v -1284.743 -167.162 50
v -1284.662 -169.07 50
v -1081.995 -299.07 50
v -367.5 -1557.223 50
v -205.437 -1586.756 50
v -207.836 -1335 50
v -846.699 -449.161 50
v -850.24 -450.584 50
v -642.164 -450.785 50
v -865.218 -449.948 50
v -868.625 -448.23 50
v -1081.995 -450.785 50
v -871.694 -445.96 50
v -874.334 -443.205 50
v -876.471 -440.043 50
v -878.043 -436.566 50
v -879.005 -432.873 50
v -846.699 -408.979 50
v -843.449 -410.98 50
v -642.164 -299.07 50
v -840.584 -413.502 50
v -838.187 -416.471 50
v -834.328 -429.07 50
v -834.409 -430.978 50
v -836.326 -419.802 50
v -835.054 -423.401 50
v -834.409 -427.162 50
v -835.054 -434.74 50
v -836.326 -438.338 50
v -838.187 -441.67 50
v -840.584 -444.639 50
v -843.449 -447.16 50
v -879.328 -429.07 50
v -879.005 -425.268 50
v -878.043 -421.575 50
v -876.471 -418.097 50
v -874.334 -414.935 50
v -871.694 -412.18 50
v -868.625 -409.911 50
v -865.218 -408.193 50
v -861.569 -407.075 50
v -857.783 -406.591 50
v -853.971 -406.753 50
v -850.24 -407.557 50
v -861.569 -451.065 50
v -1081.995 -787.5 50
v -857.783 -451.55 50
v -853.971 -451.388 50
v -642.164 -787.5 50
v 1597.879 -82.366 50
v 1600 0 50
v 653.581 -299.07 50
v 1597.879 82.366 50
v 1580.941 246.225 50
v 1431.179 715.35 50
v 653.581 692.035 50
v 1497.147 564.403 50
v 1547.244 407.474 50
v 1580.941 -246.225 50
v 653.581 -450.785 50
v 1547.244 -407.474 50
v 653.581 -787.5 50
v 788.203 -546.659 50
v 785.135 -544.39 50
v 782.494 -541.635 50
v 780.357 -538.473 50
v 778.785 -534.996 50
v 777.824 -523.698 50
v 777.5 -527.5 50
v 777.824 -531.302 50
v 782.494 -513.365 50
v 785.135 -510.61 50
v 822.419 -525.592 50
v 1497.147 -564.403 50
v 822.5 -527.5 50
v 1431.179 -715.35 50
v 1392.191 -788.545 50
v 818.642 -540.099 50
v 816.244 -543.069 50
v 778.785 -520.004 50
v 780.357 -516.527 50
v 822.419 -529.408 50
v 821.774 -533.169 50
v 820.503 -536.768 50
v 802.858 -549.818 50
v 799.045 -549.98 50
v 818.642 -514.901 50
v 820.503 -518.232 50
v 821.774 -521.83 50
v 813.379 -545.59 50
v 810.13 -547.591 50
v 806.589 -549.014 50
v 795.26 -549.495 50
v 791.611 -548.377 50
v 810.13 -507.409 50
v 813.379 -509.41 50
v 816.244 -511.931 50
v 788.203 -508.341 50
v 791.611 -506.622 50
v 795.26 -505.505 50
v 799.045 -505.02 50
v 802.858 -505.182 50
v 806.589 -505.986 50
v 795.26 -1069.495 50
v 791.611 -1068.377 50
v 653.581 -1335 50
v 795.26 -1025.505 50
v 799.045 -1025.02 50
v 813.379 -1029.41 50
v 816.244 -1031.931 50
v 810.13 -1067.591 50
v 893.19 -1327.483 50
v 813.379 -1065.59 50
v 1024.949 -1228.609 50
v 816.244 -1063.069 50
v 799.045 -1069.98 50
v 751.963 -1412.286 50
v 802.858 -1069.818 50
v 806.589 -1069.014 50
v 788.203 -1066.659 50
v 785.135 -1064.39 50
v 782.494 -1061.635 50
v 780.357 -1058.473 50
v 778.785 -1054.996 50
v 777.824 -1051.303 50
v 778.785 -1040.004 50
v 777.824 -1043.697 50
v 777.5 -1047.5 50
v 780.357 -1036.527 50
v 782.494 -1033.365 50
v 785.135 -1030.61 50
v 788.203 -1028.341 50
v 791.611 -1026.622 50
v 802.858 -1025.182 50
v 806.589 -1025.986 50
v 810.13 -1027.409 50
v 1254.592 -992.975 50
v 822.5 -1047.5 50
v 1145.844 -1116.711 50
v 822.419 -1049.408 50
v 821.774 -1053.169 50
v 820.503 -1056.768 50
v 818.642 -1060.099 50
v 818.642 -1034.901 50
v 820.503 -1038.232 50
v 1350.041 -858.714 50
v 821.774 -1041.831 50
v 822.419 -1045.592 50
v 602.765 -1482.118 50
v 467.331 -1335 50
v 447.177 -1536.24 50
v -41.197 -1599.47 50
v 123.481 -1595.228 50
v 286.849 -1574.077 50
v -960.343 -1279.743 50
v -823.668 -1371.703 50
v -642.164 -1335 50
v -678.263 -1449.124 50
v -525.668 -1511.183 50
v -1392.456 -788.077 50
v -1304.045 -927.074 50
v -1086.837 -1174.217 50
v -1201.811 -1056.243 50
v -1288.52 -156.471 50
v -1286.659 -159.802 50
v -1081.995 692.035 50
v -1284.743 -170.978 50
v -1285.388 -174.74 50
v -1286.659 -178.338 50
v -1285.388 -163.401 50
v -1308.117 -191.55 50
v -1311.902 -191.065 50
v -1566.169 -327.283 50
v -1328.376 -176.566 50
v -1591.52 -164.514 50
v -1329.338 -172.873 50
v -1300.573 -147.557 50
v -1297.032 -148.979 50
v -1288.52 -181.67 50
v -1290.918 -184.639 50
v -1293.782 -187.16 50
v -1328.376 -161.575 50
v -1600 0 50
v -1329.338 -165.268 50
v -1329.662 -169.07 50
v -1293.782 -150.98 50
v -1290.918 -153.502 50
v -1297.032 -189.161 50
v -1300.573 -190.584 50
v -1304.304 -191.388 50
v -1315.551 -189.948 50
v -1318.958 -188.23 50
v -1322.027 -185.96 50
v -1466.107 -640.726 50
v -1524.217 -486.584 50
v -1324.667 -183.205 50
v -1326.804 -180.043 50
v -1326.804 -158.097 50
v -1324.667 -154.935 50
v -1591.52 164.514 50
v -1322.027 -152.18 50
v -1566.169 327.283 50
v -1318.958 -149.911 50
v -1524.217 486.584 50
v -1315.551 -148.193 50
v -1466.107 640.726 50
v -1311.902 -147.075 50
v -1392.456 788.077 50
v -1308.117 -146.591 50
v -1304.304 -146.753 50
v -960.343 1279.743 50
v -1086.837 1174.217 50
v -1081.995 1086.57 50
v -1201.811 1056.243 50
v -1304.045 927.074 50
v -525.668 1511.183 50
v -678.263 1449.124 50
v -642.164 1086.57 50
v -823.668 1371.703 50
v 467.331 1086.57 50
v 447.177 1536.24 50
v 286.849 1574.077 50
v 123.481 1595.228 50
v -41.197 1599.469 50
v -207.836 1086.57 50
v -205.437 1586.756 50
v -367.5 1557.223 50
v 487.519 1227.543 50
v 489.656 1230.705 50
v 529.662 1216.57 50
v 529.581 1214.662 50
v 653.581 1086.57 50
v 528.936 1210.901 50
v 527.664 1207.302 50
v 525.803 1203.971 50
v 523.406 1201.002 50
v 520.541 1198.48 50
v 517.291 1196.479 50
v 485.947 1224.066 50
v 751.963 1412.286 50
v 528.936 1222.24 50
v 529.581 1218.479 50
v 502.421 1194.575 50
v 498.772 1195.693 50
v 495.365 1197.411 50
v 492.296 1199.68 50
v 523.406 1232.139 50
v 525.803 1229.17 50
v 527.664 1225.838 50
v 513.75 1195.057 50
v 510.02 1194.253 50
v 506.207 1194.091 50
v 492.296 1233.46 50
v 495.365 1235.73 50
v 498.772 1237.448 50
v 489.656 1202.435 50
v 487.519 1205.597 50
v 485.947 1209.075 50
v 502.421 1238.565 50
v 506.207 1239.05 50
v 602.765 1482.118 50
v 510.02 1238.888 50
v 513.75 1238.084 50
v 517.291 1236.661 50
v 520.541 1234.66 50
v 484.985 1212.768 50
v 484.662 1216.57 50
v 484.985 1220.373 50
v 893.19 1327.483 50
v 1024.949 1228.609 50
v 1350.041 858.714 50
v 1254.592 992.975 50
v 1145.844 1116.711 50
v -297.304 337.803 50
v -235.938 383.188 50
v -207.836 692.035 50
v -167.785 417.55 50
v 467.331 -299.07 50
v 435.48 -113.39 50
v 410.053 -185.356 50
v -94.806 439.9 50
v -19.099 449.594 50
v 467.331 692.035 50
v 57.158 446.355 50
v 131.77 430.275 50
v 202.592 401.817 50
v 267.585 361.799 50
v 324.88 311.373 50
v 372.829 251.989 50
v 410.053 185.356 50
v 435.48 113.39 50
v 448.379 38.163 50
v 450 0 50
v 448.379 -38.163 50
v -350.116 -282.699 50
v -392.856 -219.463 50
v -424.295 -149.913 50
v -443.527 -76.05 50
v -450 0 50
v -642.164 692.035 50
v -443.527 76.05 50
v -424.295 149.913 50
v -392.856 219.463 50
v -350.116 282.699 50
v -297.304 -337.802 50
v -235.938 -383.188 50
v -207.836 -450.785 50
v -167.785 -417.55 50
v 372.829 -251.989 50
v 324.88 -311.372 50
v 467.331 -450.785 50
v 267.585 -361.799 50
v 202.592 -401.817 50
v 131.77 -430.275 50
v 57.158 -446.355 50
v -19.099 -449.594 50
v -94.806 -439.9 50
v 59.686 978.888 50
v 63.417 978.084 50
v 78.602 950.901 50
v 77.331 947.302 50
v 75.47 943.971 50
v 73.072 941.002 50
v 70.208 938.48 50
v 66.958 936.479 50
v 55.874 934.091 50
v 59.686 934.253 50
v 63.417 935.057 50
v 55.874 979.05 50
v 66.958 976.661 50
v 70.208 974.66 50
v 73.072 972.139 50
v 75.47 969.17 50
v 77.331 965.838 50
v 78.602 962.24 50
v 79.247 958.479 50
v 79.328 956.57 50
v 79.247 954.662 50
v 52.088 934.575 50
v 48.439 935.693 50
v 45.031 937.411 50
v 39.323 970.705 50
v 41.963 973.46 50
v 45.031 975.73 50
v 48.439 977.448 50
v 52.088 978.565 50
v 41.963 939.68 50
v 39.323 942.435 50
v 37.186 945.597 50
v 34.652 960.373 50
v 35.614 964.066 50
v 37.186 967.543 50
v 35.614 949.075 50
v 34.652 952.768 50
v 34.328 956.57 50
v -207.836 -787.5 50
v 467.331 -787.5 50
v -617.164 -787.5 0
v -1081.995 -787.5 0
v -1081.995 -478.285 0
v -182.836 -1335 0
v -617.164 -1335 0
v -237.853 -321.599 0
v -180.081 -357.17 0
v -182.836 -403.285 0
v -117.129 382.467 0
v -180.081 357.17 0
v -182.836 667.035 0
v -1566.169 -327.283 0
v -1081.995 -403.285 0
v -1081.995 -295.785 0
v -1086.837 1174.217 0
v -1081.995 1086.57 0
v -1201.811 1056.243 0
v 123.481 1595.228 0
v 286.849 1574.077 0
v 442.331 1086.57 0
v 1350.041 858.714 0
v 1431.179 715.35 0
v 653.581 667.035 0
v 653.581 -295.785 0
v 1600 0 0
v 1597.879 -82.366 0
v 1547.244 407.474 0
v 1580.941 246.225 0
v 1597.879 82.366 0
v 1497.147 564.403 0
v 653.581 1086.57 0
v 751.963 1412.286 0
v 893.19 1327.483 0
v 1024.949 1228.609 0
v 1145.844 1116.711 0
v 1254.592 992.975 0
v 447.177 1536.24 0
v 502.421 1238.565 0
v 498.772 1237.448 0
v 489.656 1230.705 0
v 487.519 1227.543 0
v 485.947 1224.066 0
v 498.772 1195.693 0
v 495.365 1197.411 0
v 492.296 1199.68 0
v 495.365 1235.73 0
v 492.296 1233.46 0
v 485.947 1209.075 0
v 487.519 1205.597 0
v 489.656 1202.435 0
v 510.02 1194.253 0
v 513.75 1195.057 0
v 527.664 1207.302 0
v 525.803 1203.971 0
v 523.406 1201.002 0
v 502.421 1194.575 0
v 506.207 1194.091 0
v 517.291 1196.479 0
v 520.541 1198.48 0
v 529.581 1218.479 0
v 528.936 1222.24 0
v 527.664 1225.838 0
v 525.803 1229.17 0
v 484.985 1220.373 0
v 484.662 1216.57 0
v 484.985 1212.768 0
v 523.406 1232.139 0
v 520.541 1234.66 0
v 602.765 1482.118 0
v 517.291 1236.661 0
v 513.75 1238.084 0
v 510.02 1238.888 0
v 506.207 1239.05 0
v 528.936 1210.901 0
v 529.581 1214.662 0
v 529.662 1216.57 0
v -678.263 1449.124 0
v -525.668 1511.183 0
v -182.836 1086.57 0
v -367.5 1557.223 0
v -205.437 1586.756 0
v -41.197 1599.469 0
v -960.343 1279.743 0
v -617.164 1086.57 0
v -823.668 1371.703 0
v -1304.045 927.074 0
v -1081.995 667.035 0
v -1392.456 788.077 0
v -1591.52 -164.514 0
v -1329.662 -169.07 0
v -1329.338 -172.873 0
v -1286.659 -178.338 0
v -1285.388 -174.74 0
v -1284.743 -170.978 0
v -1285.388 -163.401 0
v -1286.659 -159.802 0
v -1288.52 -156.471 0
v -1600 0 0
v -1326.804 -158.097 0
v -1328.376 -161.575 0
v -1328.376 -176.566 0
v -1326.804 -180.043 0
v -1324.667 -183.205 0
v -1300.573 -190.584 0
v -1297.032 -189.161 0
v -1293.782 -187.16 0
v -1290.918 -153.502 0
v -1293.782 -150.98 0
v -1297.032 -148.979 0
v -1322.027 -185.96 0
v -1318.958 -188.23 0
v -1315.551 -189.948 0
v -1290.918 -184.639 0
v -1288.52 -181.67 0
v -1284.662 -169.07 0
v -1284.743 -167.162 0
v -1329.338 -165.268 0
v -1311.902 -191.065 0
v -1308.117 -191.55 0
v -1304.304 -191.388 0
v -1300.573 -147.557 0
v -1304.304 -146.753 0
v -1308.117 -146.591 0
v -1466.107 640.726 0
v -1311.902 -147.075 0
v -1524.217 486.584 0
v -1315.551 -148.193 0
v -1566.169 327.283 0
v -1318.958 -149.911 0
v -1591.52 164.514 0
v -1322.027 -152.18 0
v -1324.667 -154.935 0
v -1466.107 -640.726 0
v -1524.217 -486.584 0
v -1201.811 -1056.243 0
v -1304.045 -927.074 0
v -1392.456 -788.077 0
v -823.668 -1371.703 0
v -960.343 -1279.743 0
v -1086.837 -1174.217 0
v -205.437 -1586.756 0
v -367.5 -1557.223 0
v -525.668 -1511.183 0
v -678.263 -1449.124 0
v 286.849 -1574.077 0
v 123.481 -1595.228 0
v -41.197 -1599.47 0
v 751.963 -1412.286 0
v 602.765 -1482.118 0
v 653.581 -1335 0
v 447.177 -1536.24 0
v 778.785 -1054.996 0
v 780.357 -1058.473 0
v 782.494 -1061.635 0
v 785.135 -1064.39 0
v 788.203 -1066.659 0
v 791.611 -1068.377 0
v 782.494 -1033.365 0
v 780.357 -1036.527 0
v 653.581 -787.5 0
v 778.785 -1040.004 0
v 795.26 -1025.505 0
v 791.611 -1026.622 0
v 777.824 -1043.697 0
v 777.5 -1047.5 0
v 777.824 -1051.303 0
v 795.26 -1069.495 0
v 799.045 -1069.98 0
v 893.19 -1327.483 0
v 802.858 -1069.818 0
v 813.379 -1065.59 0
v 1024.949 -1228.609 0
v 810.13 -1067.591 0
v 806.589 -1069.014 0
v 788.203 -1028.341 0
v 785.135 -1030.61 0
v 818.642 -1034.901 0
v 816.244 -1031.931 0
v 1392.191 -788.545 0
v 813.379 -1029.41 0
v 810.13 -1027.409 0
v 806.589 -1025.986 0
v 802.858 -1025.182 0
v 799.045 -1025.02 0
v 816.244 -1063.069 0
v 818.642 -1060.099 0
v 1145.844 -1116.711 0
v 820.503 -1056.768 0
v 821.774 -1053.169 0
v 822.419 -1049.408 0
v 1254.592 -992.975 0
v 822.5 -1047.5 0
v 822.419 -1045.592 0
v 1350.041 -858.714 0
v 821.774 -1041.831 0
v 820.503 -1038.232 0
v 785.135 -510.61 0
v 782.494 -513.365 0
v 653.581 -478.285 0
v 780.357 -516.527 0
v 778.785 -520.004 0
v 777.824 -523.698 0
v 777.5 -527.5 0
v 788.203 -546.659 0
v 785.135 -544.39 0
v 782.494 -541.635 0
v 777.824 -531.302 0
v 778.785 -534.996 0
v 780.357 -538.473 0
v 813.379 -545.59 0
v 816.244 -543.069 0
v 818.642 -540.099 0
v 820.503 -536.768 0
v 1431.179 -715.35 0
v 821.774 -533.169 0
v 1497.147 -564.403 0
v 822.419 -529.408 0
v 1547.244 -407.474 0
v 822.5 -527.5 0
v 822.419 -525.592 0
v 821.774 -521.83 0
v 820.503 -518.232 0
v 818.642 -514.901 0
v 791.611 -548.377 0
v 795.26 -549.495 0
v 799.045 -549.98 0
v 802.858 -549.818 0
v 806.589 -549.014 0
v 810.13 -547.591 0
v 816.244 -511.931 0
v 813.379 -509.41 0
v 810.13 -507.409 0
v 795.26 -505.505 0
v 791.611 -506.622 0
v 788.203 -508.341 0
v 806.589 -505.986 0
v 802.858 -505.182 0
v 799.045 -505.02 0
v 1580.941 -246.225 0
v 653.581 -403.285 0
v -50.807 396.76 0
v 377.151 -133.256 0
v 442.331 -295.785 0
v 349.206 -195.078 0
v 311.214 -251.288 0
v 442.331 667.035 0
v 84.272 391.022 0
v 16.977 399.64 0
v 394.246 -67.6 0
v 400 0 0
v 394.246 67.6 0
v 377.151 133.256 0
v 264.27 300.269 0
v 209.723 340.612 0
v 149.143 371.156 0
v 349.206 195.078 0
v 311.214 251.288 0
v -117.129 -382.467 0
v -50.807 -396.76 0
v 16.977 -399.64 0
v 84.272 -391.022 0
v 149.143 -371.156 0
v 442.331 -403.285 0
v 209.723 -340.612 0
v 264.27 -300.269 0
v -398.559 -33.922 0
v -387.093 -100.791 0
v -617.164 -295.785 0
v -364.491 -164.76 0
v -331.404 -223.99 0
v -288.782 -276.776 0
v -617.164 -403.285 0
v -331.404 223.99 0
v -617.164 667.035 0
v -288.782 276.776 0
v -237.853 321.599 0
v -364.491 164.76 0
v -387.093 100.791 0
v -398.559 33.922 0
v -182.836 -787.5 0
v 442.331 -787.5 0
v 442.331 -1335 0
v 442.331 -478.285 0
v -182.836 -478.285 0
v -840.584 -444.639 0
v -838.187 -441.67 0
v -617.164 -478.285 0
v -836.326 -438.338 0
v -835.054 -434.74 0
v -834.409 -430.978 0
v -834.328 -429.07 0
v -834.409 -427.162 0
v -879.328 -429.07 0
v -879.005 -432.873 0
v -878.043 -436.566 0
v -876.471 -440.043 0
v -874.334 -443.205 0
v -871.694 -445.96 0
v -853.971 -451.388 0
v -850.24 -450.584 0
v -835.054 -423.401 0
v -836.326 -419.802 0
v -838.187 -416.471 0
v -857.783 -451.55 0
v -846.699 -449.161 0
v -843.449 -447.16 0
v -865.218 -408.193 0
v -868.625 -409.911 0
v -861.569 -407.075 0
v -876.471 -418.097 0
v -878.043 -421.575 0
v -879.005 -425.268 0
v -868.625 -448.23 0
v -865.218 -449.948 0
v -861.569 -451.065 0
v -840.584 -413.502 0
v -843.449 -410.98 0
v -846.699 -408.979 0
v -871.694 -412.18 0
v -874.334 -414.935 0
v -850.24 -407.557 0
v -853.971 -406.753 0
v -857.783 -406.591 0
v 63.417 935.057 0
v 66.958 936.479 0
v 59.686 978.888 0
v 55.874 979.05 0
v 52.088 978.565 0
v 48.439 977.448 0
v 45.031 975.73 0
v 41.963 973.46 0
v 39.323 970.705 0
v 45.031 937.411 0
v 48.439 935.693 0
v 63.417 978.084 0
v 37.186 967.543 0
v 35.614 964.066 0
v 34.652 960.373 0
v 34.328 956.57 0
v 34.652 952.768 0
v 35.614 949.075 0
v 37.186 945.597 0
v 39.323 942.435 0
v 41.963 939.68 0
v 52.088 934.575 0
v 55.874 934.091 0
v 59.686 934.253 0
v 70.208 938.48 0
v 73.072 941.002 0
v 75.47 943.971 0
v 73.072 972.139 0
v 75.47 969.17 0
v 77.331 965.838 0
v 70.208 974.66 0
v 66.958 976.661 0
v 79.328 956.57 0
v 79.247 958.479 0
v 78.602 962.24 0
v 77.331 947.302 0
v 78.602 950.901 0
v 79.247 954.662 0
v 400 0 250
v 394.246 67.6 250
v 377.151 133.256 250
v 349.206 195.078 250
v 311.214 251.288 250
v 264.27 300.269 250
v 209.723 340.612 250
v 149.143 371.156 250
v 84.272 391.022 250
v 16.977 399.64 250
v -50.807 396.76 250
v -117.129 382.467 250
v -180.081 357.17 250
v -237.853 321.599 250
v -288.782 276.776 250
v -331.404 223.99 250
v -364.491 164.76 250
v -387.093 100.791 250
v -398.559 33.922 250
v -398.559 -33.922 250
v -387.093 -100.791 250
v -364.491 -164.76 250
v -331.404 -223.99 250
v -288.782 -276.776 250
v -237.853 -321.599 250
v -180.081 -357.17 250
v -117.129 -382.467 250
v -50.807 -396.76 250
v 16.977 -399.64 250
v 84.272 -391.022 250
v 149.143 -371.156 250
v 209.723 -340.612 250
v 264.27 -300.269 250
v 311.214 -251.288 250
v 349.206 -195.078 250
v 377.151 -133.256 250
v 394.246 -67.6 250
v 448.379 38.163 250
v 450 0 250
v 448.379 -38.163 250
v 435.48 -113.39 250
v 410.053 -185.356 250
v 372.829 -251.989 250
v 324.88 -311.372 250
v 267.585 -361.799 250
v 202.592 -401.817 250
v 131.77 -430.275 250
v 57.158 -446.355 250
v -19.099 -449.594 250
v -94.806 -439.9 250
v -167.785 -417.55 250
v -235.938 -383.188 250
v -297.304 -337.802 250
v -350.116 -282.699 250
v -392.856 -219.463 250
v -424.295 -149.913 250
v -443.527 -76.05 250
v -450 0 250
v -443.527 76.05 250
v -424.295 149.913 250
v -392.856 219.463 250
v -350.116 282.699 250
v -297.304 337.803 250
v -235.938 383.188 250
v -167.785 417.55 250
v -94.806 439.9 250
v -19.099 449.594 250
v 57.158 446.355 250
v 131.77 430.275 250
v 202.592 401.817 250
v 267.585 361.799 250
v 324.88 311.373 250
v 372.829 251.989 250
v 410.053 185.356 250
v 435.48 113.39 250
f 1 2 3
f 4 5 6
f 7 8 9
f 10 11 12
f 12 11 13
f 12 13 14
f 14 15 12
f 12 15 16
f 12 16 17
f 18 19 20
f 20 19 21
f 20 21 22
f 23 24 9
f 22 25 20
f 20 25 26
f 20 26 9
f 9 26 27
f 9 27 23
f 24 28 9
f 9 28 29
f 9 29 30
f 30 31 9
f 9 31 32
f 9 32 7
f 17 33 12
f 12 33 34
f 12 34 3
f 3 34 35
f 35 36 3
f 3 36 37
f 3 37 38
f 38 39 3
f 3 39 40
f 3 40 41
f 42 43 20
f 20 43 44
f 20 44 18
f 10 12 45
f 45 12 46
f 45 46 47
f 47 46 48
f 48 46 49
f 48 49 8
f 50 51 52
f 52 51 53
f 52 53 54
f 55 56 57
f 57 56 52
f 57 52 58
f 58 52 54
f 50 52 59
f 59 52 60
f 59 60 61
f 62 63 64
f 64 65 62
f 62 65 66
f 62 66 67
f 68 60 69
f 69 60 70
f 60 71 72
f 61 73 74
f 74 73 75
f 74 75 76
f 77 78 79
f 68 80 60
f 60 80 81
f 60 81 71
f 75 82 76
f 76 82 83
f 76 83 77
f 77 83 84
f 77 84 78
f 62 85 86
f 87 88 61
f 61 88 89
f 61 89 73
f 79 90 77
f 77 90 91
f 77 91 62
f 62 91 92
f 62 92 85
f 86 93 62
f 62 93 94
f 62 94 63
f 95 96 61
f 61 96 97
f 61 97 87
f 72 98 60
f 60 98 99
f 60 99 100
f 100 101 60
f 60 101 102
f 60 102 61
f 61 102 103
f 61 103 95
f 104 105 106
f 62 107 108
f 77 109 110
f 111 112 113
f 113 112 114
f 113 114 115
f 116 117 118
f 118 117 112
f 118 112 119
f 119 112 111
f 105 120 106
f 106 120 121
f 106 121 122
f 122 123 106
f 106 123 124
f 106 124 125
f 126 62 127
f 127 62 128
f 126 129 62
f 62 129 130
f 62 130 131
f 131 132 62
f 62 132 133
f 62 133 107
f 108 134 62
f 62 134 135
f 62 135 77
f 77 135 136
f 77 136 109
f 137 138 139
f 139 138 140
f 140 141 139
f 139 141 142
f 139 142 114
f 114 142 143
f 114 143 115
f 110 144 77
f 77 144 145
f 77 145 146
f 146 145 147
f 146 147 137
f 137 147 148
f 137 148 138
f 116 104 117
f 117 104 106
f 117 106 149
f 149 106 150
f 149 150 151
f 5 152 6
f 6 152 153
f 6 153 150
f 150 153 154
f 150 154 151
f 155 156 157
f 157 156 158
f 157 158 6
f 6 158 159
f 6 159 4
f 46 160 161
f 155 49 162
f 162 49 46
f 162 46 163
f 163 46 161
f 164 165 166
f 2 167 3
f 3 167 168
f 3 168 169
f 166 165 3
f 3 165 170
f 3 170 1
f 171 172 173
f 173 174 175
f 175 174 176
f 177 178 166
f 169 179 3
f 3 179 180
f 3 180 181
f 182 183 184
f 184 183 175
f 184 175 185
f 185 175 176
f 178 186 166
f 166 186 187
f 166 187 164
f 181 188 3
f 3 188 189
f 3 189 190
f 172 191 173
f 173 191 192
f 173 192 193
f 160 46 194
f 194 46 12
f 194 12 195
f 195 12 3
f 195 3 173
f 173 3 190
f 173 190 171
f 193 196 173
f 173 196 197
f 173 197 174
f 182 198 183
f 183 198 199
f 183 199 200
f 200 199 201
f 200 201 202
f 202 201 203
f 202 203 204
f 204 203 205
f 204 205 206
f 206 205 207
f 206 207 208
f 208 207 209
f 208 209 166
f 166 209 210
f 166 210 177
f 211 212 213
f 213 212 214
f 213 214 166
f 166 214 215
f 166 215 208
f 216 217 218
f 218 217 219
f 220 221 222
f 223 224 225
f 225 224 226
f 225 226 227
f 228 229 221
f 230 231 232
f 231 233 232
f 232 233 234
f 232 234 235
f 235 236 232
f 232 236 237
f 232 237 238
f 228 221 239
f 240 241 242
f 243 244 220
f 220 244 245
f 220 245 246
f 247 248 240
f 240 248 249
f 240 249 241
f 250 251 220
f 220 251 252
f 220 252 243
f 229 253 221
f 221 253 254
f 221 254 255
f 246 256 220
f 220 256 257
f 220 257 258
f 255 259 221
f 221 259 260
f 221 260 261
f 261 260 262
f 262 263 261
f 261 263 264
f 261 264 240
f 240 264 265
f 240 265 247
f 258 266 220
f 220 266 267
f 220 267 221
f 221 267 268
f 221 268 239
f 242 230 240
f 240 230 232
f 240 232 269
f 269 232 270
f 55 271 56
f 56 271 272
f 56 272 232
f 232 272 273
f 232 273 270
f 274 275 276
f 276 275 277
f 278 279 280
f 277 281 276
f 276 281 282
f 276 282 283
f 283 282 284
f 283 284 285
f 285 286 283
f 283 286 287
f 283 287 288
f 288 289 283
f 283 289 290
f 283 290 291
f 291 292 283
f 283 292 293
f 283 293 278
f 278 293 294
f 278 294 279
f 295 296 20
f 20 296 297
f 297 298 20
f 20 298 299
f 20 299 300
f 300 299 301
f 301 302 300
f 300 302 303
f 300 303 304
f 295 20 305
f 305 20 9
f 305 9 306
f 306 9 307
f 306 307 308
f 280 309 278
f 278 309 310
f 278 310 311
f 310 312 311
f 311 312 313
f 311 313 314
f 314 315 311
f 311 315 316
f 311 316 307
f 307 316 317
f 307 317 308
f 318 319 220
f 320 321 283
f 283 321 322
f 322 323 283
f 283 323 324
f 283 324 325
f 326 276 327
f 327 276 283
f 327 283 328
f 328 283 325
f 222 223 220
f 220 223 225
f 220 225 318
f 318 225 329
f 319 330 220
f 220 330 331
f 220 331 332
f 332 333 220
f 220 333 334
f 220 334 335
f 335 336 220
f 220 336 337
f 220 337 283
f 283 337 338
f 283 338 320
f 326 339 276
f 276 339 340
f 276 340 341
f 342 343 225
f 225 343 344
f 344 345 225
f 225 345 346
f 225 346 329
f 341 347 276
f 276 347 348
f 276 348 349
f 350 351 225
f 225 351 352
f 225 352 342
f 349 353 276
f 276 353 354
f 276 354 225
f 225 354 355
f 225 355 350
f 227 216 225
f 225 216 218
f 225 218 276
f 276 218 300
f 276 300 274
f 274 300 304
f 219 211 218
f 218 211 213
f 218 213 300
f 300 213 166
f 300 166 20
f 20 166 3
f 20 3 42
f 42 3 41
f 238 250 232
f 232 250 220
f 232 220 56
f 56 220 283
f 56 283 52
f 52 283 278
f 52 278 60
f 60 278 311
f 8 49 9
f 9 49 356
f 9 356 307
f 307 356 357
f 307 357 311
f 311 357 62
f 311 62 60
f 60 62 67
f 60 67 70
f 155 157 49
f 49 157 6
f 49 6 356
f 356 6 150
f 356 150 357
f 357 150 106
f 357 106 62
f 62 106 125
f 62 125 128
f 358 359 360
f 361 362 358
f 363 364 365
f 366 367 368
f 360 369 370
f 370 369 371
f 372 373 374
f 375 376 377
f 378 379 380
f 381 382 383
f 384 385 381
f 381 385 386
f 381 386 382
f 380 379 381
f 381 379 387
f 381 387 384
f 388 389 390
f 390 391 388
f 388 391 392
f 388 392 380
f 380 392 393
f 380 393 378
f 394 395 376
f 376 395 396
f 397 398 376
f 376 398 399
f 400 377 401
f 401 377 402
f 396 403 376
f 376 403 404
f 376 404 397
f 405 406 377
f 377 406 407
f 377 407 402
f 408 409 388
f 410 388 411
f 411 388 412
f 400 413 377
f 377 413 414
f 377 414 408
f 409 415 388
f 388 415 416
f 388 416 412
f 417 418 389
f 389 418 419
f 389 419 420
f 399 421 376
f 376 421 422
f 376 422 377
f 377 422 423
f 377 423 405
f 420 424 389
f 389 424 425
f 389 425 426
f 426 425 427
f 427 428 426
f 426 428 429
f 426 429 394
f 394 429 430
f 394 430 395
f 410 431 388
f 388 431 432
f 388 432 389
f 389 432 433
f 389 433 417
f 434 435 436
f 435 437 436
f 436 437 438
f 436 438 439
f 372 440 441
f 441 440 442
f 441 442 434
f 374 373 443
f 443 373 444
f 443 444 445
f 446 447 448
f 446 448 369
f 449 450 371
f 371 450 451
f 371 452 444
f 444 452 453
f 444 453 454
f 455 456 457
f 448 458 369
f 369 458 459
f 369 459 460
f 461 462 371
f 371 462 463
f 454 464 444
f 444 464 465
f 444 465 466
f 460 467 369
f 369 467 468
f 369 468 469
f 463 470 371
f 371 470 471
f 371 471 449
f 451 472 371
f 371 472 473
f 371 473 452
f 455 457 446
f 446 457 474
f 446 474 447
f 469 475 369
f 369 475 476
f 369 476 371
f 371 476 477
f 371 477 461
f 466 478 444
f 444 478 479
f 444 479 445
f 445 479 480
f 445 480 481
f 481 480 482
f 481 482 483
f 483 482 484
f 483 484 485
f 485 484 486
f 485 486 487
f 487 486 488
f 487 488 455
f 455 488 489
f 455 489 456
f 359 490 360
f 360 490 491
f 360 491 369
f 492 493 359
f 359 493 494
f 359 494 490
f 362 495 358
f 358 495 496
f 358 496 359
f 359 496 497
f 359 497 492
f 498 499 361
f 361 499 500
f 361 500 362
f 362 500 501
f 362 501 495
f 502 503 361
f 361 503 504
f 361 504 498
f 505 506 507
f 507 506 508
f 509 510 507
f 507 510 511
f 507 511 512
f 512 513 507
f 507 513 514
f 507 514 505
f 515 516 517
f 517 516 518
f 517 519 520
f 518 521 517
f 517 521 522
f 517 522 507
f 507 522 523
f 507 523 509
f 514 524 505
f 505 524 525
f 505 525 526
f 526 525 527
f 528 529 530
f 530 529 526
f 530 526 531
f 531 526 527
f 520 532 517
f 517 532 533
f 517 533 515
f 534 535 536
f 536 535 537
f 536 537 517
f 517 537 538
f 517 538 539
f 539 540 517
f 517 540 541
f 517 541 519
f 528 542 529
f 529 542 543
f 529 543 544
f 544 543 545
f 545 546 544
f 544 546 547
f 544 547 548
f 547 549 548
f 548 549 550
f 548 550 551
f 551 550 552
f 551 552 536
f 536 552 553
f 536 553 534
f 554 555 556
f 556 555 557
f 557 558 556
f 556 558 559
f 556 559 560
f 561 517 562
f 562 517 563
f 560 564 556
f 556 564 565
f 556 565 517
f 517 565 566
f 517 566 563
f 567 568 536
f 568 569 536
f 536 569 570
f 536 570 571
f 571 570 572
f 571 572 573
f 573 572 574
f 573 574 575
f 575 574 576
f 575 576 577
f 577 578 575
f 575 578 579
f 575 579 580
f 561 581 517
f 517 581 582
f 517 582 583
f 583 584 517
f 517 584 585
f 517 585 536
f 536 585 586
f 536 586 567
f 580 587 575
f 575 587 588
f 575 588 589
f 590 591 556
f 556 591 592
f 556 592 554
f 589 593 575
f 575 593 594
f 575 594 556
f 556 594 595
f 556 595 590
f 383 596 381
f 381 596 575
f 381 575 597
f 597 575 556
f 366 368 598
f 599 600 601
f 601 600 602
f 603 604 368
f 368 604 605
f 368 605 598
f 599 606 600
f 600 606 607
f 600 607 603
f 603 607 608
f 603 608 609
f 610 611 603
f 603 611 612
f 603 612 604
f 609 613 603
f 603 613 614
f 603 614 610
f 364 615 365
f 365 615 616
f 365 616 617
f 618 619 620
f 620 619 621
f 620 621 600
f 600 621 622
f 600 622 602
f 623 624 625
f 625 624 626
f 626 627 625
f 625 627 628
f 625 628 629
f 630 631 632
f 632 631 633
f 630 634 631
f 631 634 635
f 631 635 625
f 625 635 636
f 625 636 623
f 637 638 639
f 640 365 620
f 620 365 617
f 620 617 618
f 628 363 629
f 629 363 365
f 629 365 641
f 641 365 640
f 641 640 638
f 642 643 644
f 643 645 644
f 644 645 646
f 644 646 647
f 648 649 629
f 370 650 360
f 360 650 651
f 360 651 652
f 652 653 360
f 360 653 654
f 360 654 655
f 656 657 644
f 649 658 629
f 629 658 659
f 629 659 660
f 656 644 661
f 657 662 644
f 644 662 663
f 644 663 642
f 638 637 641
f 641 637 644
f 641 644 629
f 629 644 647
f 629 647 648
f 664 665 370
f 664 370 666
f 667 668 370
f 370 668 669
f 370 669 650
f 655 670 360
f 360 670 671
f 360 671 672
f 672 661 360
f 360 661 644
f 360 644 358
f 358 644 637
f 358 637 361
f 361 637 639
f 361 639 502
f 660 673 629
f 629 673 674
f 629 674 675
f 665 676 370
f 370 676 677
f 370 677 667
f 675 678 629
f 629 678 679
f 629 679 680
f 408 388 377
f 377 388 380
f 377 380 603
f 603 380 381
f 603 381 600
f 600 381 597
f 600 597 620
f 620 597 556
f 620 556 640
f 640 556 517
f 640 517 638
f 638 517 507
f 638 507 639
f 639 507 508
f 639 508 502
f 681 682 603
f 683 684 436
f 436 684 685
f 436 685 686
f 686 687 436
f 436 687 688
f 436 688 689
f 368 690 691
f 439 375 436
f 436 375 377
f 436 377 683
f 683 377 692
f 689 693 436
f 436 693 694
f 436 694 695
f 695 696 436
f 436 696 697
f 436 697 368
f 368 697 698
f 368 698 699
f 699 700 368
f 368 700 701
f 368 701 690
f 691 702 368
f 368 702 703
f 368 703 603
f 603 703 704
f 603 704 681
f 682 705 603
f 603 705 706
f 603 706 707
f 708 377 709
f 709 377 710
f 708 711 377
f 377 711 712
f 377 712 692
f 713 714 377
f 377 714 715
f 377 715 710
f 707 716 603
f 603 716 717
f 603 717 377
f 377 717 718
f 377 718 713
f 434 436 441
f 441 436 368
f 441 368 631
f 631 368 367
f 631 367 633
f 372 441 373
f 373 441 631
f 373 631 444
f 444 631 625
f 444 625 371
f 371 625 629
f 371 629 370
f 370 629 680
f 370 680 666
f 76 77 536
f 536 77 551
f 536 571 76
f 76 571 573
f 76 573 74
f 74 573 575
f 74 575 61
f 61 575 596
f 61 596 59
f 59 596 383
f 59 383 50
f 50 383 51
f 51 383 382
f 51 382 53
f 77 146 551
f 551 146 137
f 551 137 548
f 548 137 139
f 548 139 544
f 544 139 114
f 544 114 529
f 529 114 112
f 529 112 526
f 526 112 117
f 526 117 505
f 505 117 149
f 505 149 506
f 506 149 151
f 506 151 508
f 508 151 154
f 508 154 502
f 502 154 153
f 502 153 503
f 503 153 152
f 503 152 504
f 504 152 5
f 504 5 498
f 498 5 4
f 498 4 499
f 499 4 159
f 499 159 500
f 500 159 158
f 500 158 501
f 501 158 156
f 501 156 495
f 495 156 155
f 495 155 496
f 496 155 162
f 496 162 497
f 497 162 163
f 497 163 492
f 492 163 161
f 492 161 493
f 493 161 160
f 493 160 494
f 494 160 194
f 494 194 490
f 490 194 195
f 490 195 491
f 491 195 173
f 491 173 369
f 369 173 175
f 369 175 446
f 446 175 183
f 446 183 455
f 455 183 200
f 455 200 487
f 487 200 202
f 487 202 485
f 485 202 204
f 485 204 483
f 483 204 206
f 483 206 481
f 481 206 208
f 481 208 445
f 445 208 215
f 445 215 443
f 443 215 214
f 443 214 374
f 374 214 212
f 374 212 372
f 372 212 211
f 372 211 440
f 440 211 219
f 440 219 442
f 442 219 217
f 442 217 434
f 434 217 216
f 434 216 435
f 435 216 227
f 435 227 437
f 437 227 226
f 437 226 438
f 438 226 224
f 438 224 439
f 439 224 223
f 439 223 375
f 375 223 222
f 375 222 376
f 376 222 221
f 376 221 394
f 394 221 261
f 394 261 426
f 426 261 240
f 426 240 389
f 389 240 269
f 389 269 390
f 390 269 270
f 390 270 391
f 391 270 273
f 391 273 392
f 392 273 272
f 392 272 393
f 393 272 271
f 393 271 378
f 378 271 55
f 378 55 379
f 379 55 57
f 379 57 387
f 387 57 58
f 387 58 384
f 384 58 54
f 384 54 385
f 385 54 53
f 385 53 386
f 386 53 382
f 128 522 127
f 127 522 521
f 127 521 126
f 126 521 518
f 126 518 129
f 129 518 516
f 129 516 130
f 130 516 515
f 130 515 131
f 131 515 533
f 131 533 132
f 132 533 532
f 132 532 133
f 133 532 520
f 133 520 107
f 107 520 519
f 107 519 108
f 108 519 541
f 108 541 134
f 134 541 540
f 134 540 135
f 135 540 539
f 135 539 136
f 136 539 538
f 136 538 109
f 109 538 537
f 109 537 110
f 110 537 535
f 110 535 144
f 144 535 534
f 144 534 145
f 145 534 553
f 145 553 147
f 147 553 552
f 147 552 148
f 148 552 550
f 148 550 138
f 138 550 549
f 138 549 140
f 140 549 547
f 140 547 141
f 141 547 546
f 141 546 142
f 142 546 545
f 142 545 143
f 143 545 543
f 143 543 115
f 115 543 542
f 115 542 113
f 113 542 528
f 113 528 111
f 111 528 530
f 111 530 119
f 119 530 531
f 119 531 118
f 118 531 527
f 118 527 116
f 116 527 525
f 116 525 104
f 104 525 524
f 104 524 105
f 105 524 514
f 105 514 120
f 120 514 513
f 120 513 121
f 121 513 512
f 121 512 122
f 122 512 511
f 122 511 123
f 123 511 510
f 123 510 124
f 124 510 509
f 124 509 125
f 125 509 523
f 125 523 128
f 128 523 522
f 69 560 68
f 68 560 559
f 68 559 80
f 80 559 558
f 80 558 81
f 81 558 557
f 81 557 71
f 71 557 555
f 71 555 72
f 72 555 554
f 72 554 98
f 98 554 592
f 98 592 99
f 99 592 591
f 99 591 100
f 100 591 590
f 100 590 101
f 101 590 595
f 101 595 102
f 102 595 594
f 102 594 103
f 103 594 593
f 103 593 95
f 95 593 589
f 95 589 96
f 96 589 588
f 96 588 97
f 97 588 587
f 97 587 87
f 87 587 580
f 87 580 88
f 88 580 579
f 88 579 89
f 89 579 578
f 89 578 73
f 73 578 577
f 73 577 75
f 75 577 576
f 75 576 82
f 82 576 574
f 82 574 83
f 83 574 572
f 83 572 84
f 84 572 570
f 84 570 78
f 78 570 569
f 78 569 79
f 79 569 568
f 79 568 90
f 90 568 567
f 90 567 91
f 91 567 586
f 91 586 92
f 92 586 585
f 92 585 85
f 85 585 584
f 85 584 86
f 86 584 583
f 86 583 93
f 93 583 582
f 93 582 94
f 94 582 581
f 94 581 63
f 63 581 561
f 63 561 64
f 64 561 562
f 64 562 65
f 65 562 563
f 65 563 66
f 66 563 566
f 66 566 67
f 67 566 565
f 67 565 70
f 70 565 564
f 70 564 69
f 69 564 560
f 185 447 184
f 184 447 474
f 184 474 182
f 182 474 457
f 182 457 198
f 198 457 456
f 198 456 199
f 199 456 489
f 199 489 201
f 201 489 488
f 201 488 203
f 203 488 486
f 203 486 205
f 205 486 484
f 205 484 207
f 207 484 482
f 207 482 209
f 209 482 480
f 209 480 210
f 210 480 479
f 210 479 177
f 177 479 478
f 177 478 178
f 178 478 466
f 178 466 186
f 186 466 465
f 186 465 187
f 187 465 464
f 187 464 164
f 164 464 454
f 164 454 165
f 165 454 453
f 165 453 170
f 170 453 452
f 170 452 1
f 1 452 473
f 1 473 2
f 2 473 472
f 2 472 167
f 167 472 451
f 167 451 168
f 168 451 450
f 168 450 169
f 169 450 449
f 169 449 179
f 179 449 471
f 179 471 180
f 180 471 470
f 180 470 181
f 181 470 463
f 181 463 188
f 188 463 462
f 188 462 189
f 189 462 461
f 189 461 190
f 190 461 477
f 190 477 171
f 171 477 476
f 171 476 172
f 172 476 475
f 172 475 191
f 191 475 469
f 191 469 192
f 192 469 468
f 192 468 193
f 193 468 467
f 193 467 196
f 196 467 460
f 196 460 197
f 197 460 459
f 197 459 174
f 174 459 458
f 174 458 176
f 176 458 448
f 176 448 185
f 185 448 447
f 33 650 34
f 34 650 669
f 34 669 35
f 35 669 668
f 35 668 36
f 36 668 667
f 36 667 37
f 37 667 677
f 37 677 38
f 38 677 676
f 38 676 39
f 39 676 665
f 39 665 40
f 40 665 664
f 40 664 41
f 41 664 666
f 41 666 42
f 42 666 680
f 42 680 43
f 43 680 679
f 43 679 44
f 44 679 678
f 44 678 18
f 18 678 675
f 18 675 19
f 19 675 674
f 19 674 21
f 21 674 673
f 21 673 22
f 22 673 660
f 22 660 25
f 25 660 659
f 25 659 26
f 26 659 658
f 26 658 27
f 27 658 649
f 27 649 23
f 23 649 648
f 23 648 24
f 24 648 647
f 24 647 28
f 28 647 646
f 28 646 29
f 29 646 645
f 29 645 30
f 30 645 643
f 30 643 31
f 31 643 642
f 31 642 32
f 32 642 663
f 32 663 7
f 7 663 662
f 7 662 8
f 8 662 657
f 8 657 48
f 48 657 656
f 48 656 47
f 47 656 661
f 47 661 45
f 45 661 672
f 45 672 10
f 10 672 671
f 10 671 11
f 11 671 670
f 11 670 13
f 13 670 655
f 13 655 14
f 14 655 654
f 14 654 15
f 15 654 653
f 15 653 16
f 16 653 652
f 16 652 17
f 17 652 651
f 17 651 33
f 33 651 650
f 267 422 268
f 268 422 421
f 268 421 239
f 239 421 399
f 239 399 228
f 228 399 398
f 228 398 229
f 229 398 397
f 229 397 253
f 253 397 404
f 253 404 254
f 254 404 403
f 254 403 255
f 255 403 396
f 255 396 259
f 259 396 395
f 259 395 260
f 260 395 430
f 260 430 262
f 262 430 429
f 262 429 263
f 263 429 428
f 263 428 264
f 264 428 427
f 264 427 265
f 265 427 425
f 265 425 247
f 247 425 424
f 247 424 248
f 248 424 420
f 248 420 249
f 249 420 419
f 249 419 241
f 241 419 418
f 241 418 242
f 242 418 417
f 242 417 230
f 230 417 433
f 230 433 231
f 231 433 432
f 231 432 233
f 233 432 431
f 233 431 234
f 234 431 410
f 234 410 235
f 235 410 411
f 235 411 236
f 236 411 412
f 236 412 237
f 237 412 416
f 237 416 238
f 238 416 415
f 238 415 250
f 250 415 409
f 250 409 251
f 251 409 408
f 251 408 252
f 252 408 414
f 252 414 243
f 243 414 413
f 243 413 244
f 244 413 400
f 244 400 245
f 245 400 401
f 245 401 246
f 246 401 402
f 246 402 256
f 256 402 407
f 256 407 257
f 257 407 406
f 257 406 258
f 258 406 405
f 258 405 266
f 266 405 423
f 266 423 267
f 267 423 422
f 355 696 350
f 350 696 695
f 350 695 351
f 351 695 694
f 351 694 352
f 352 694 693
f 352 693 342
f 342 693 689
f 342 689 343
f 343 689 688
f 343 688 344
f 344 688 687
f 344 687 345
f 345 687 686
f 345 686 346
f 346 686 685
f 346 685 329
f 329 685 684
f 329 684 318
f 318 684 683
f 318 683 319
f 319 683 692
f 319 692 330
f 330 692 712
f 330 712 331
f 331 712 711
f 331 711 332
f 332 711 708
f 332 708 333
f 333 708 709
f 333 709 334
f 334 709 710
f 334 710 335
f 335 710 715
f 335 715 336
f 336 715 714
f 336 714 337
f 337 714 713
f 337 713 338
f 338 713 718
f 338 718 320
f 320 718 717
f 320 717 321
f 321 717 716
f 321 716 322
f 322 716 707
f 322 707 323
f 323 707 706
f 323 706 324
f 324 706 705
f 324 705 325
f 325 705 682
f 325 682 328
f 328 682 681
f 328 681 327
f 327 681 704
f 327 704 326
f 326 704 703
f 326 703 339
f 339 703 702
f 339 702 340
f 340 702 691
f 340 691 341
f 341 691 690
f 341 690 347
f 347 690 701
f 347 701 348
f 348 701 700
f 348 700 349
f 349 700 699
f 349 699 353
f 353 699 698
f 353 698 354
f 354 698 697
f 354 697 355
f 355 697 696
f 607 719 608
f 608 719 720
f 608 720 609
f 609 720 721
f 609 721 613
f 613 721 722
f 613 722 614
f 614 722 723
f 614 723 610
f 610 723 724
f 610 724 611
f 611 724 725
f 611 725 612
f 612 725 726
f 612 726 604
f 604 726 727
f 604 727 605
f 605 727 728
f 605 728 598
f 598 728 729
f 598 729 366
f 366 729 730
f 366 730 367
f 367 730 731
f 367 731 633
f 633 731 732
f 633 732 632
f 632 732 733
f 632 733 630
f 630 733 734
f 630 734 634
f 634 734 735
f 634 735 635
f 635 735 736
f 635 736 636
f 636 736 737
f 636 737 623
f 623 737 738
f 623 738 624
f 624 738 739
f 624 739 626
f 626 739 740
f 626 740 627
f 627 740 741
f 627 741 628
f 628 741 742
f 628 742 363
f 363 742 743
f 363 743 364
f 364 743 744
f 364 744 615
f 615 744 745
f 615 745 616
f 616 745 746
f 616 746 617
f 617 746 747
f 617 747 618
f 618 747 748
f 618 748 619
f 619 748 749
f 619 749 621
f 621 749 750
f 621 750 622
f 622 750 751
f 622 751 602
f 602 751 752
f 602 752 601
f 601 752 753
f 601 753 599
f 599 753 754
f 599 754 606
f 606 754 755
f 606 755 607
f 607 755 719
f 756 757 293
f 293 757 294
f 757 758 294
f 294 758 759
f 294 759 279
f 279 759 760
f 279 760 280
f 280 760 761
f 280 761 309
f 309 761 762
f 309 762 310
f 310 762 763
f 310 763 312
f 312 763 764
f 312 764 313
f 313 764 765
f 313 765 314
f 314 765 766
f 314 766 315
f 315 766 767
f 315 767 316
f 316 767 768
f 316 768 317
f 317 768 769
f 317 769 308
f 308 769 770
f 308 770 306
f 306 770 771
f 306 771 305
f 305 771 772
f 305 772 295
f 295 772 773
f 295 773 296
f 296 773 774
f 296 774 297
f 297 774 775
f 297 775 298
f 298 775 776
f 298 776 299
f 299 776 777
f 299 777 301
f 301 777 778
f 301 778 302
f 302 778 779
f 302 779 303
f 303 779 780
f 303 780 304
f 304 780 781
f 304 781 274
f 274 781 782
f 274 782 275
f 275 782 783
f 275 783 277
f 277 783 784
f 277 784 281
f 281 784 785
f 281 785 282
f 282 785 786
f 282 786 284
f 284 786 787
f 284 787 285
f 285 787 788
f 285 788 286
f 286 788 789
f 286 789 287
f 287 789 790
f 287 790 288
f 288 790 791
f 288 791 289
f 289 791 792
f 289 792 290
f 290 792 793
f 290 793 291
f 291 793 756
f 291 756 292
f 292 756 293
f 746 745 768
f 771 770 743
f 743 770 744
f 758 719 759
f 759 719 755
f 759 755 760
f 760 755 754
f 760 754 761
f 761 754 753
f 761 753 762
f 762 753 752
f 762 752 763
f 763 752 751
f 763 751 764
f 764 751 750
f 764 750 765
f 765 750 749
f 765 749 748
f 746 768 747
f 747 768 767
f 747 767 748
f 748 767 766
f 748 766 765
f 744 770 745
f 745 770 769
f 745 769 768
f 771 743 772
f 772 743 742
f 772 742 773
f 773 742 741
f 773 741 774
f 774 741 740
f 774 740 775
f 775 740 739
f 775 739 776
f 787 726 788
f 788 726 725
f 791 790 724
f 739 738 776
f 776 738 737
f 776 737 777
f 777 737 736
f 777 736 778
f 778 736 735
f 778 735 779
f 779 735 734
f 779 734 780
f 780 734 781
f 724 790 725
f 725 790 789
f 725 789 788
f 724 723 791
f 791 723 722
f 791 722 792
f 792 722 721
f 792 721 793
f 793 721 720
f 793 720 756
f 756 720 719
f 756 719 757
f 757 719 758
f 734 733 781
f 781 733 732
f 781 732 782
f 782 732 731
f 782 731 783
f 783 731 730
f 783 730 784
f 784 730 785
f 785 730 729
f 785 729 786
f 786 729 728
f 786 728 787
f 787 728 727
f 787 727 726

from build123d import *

# Parameters (mm, degrees)
SKETCH2_R           = 1600
SKETCH2_R_2         = 22.5
BOSS_EXTRUDE1_DEPTH = 50
SKETCH3_R           = 400
CUT_EXTRUDE1_DEPTH  = 51
SKETCH4_R           = 450
BOSS_EXTRUDE2_DEPTH = 200
SKETCH5_R           = 400
CUT_EXTRUDE2_DEPTH  = 251


with BuildPart() as part:
    # Sketch2 → Boss-Extrude1 (new body)
    with BuildSketch(Plane.XY):
        Circle(SKETCH2_R)
        with Locations((800, -527.5)):
            Circle(SKETCH2_R_2, mode=Mode.SUBTRACT)
        with Locations((800, -1047.5)):
            Circle(SKETCH2_R_2, mode=Mode.SUBTRACT)
        with Locations((-856.828400496, -429.070323028)):
            Circle(SKETCH2_R_2, mode=Mode.SUBTRACT)
        with Locations((-1307.161610464, -169.070323028)):
            Circle(SKETCH2_R_2, mode=Mode.SUBTRACT)
        with Locations((56.828400496, 956.570323028)):
            Circle(SKETCH2_R_2, mode=Mode.SUBTRACT)
        with Locations((507.161610464, 1216.570323028)):
            Circle(SKETCH2_R_2, mode=Mode.SUBTRACT)
    extrude(amount=BOSS_EXTRUDE1_DEPTH)

    # Sketch3 → Cut-Extrude1 (cut, through all)
    with BuildSketch(Plane.XY.offset(50)):
        Circle(SKETCH3_R)
    extrude(amount=-CUT_EXTRUDE1_DEPTH, mode=Mode.SUBTRACT)

    # Sketch4 → Boss-Extrude2 (add)
    with BuildSketch(Plane.XY.offset(50)):
        Circle(SKETCH4_R)
    extrude(amount=BOSS_EXTRUDE2_DEPTH)

    # Sketch5 → Cut-Extrude2 (cut, through all)
    with BuildSketch(Plane.XY.offset(250)):
        Circle(SKETCH5_R)
    extrude(amount=-CUT_EXTRUDE2_DEPTH, mode=Mode.SUBTRACT)


solid = part.part
